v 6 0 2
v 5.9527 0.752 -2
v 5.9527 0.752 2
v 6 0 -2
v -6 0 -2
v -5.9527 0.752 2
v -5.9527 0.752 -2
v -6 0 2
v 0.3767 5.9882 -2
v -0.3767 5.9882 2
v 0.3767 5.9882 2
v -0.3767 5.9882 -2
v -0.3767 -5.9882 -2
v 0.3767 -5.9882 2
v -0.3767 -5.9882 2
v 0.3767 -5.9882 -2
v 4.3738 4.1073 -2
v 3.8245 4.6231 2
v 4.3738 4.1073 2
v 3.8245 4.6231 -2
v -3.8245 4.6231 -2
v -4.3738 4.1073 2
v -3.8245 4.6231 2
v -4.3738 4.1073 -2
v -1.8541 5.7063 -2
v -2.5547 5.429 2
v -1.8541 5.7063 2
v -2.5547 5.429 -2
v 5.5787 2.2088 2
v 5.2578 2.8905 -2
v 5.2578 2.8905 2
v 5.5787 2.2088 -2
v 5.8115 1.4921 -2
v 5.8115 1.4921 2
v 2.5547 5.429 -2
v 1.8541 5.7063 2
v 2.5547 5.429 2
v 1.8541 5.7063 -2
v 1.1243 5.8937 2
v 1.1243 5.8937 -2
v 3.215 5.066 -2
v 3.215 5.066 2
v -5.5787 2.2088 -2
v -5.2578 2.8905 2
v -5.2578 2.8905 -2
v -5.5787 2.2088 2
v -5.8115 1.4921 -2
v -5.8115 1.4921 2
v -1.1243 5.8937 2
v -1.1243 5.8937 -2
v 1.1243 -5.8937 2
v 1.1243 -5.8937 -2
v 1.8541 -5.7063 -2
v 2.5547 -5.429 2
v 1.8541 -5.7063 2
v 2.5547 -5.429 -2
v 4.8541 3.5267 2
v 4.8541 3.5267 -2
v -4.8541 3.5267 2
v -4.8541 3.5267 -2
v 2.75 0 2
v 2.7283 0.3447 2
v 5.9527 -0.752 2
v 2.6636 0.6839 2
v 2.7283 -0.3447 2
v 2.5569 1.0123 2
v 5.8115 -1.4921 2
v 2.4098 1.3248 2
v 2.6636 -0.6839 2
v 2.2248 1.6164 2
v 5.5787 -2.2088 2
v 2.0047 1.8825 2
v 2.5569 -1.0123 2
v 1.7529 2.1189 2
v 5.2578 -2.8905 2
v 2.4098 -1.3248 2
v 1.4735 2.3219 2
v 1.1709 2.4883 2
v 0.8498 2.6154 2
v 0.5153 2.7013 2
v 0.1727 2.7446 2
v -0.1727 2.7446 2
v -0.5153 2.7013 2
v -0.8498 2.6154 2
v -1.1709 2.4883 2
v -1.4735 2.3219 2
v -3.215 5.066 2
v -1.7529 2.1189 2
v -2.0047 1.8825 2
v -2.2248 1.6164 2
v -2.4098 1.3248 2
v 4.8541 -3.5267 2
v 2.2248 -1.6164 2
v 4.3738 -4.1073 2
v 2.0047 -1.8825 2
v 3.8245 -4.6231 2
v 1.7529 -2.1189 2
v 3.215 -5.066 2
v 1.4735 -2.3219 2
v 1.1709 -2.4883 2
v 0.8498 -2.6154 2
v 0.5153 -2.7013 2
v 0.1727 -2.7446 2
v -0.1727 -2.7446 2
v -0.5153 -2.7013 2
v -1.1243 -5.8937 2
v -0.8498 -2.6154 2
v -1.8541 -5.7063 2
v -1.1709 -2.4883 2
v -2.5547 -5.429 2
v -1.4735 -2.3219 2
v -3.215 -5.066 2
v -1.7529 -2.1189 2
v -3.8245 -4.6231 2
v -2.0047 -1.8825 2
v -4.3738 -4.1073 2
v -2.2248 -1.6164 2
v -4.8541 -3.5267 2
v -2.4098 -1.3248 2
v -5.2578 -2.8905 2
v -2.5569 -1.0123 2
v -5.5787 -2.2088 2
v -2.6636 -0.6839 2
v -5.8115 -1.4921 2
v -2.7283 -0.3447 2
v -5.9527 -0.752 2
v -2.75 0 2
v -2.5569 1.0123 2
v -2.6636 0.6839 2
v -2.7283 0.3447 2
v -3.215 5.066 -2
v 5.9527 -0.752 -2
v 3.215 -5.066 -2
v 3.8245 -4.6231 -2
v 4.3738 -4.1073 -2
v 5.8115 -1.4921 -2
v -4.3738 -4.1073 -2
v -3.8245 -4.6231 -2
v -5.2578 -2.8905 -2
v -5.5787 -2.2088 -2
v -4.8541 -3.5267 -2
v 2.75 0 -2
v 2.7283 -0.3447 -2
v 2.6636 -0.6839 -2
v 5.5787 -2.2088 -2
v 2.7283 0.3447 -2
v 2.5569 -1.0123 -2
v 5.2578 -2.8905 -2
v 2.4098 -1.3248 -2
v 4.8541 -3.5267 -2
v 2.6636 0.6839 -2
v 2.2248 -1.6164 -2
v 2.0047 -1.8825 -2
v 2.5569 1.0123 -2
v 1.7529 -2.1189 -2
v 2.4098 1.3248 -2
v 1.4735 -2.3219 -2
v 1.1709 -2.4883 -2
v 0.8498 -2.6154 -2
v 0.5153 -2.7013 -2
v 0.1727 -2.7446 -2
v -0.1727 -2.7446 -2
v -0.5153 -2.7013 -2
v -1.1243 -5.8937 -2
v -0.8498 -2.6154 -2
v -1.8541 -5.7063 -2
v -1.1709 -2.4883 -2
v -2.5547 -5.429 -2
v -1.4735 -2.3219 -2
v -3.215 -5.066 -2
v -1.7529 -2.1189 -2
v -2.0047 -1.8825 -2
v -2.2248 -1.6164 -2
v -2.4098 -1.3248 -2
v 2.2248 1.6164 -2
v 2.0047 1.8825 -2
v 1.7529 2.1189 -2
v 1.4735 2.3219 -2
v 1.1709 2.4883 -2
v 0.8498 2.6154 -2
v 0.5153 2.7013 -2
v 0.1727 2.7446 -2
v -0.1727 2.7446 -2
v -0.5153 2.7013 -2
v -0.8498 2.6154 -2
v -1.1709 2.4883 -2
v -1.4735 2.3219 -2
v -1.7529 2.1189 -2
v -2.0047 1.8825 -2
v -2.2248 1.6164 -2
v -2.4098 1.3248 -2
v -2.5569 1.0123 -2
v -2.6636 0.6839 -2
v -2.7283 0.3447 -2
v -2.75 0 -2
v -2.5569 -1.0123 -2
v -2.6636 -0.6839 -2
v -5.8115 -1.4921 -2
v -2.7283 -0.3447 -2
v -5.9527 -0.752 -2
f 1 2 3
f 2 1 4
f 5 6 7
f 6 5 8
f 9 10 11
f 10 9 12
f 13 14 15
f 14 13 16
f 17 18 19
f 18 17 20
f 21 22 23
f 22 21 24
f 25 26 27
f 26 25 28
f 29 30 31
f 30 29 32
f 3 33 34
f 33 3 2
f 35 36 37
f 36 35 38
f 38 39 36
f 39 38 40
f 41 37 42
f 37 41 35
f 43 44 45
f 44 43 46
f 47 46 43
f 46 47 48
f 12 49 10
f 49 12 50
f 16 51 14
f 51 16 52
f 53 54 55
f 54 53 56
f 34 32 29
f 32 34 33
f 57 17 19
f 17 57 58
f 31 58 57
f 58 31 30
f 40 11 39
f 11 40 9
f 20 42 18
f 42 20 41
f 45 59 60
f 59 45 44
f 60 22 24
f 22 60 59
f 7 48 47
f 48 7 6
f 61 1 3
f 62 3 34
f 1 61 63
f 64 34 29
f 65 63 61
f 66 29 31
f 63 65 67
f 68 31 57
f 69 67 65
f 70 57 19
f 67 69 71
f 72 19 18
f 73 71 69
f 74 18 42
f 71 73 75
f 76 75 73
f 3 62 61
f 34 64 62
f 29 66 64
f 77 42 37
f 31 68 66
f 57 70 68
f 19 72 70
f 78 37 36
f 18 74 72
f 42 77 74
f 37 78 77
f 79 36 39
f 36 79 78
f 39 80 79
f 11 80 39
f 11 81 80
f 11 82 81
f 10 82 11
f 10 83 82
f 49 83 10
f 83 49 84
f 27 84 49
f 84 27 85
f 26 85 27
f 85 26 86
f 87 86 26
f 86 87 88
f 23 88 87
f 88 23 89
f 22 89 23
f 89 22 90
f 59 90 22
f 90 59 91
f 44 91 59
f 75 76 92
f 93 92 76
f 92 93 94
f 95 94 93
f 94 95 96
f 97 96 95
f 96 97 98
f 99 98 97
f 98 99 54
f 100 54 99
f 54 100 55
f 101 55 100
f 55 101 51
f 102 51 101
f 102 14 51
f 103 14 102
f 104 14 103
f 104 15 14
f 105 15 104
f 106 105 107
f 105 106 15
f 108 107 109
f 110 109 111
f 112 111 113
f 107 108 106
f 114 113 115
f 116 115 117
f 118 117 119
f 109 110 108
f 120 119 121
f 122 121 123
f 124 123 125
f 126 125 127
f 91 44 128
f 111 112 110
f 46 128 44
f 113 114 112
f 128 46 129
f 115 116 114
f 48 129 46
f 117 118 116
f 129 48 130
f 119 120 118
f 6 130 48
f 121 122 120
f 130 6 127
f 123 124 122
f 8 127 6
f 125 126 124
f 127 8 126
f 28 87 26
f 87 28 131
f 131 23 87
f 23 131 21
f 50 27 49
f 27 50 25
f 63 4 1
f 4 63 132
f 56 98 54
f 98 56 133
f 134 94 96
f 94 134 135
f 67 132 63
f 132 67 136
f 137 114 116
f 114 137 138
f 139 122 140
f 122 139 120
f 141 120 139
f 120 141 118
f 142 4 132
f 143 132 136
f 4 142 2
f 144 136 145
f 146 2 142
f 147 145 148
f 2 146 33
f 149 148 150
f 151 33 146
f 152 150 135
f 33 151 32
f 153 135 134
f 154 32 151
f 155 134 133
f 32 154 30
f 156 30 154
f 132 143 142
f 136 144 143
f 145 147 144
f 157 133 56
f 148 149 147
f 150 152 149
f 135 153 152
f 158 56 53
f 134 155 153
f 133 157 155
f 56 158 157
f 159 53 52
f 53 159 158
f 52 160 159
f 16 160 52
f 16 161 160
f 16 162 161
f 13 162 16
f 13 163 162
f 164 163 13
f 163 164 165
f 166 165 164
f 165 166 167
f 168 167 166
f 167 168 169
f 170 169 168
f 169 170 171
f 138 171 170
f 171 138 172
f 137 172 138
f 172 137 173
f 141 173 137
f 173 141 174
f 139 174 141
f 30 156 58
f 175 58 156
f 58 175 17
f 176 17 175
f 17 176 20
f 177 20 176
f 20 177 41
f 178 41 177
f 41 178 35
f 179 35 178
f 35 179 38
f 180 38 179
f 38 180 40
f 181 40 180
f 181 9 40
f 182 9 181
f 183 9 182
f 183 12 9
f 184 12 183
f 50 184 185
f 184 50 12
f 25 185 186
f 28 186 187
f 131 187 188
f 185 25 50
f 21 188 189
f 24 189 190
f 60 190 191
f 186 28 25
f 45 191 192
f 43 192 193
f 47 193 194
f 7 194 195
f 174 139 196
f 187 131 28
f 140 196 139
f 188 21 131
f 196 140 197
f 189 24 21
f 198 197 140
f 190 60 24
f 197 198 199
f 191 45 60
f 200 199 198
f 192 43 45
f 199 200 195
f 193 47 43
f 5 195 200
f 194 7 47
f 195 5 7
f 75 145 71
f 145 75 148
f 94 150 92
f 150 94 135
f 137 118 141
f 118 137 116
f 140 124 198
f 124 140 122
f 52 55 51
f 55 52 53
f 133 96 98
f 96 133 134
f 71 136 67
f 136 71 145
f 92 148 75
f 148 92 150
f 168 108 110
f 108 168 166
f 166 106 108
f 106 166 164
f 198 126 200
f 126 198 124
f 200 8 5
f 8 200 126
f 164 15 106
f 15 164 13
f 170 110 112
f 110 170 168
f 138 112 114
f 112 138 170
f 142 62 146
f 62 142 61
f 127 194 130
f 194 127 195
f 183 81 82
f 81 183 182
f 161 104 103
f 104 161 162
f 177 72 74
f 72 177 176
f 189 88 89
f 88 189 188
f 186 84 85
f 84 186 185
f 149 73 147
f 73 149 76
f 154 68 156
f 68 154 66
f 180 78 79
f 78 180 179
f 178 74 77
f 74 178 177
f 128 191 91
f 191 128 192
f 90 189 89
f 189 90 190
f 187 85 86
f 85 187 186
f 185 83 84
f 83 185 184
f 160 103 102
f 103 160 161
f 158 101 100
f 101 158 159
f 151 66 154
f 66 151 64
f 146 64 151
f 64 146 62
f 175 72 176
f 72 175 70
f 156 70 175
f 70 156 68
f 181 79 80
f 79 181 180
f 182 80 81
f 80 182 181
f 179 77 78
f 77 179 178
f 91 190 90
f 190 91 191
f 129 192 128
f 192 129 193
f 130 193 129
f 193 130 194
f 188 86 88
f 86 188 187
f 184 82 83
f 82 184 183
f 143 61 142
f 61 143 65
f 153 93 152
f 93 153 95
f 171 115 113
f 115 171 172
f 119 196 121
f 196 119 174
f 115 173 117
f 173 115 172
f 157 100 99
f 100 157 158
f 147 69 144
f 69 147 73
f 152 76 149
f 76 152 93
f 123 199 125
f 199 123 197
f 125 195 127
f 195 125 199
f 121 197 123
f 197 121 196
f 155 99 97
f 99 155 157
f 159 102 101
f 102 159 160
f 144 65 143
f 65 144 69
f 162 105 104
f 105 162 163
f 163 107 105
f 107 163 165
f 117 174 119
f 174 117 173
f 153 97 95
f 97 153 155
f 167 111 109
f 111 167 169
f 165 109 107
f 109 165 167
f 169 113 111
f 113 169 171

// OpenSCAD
$fn = 50;


difference() {
	union() {
		translate(v = [0, 0, -2.0000000000]) {
			cylinder(h = 4, r = 6.0000000000);
		}
	}
	union() {
		translate(v = [0, 0, -100.0000000000]) {
			cylinder(h = 200, r = 2.7500000000);
		}
	}
}
